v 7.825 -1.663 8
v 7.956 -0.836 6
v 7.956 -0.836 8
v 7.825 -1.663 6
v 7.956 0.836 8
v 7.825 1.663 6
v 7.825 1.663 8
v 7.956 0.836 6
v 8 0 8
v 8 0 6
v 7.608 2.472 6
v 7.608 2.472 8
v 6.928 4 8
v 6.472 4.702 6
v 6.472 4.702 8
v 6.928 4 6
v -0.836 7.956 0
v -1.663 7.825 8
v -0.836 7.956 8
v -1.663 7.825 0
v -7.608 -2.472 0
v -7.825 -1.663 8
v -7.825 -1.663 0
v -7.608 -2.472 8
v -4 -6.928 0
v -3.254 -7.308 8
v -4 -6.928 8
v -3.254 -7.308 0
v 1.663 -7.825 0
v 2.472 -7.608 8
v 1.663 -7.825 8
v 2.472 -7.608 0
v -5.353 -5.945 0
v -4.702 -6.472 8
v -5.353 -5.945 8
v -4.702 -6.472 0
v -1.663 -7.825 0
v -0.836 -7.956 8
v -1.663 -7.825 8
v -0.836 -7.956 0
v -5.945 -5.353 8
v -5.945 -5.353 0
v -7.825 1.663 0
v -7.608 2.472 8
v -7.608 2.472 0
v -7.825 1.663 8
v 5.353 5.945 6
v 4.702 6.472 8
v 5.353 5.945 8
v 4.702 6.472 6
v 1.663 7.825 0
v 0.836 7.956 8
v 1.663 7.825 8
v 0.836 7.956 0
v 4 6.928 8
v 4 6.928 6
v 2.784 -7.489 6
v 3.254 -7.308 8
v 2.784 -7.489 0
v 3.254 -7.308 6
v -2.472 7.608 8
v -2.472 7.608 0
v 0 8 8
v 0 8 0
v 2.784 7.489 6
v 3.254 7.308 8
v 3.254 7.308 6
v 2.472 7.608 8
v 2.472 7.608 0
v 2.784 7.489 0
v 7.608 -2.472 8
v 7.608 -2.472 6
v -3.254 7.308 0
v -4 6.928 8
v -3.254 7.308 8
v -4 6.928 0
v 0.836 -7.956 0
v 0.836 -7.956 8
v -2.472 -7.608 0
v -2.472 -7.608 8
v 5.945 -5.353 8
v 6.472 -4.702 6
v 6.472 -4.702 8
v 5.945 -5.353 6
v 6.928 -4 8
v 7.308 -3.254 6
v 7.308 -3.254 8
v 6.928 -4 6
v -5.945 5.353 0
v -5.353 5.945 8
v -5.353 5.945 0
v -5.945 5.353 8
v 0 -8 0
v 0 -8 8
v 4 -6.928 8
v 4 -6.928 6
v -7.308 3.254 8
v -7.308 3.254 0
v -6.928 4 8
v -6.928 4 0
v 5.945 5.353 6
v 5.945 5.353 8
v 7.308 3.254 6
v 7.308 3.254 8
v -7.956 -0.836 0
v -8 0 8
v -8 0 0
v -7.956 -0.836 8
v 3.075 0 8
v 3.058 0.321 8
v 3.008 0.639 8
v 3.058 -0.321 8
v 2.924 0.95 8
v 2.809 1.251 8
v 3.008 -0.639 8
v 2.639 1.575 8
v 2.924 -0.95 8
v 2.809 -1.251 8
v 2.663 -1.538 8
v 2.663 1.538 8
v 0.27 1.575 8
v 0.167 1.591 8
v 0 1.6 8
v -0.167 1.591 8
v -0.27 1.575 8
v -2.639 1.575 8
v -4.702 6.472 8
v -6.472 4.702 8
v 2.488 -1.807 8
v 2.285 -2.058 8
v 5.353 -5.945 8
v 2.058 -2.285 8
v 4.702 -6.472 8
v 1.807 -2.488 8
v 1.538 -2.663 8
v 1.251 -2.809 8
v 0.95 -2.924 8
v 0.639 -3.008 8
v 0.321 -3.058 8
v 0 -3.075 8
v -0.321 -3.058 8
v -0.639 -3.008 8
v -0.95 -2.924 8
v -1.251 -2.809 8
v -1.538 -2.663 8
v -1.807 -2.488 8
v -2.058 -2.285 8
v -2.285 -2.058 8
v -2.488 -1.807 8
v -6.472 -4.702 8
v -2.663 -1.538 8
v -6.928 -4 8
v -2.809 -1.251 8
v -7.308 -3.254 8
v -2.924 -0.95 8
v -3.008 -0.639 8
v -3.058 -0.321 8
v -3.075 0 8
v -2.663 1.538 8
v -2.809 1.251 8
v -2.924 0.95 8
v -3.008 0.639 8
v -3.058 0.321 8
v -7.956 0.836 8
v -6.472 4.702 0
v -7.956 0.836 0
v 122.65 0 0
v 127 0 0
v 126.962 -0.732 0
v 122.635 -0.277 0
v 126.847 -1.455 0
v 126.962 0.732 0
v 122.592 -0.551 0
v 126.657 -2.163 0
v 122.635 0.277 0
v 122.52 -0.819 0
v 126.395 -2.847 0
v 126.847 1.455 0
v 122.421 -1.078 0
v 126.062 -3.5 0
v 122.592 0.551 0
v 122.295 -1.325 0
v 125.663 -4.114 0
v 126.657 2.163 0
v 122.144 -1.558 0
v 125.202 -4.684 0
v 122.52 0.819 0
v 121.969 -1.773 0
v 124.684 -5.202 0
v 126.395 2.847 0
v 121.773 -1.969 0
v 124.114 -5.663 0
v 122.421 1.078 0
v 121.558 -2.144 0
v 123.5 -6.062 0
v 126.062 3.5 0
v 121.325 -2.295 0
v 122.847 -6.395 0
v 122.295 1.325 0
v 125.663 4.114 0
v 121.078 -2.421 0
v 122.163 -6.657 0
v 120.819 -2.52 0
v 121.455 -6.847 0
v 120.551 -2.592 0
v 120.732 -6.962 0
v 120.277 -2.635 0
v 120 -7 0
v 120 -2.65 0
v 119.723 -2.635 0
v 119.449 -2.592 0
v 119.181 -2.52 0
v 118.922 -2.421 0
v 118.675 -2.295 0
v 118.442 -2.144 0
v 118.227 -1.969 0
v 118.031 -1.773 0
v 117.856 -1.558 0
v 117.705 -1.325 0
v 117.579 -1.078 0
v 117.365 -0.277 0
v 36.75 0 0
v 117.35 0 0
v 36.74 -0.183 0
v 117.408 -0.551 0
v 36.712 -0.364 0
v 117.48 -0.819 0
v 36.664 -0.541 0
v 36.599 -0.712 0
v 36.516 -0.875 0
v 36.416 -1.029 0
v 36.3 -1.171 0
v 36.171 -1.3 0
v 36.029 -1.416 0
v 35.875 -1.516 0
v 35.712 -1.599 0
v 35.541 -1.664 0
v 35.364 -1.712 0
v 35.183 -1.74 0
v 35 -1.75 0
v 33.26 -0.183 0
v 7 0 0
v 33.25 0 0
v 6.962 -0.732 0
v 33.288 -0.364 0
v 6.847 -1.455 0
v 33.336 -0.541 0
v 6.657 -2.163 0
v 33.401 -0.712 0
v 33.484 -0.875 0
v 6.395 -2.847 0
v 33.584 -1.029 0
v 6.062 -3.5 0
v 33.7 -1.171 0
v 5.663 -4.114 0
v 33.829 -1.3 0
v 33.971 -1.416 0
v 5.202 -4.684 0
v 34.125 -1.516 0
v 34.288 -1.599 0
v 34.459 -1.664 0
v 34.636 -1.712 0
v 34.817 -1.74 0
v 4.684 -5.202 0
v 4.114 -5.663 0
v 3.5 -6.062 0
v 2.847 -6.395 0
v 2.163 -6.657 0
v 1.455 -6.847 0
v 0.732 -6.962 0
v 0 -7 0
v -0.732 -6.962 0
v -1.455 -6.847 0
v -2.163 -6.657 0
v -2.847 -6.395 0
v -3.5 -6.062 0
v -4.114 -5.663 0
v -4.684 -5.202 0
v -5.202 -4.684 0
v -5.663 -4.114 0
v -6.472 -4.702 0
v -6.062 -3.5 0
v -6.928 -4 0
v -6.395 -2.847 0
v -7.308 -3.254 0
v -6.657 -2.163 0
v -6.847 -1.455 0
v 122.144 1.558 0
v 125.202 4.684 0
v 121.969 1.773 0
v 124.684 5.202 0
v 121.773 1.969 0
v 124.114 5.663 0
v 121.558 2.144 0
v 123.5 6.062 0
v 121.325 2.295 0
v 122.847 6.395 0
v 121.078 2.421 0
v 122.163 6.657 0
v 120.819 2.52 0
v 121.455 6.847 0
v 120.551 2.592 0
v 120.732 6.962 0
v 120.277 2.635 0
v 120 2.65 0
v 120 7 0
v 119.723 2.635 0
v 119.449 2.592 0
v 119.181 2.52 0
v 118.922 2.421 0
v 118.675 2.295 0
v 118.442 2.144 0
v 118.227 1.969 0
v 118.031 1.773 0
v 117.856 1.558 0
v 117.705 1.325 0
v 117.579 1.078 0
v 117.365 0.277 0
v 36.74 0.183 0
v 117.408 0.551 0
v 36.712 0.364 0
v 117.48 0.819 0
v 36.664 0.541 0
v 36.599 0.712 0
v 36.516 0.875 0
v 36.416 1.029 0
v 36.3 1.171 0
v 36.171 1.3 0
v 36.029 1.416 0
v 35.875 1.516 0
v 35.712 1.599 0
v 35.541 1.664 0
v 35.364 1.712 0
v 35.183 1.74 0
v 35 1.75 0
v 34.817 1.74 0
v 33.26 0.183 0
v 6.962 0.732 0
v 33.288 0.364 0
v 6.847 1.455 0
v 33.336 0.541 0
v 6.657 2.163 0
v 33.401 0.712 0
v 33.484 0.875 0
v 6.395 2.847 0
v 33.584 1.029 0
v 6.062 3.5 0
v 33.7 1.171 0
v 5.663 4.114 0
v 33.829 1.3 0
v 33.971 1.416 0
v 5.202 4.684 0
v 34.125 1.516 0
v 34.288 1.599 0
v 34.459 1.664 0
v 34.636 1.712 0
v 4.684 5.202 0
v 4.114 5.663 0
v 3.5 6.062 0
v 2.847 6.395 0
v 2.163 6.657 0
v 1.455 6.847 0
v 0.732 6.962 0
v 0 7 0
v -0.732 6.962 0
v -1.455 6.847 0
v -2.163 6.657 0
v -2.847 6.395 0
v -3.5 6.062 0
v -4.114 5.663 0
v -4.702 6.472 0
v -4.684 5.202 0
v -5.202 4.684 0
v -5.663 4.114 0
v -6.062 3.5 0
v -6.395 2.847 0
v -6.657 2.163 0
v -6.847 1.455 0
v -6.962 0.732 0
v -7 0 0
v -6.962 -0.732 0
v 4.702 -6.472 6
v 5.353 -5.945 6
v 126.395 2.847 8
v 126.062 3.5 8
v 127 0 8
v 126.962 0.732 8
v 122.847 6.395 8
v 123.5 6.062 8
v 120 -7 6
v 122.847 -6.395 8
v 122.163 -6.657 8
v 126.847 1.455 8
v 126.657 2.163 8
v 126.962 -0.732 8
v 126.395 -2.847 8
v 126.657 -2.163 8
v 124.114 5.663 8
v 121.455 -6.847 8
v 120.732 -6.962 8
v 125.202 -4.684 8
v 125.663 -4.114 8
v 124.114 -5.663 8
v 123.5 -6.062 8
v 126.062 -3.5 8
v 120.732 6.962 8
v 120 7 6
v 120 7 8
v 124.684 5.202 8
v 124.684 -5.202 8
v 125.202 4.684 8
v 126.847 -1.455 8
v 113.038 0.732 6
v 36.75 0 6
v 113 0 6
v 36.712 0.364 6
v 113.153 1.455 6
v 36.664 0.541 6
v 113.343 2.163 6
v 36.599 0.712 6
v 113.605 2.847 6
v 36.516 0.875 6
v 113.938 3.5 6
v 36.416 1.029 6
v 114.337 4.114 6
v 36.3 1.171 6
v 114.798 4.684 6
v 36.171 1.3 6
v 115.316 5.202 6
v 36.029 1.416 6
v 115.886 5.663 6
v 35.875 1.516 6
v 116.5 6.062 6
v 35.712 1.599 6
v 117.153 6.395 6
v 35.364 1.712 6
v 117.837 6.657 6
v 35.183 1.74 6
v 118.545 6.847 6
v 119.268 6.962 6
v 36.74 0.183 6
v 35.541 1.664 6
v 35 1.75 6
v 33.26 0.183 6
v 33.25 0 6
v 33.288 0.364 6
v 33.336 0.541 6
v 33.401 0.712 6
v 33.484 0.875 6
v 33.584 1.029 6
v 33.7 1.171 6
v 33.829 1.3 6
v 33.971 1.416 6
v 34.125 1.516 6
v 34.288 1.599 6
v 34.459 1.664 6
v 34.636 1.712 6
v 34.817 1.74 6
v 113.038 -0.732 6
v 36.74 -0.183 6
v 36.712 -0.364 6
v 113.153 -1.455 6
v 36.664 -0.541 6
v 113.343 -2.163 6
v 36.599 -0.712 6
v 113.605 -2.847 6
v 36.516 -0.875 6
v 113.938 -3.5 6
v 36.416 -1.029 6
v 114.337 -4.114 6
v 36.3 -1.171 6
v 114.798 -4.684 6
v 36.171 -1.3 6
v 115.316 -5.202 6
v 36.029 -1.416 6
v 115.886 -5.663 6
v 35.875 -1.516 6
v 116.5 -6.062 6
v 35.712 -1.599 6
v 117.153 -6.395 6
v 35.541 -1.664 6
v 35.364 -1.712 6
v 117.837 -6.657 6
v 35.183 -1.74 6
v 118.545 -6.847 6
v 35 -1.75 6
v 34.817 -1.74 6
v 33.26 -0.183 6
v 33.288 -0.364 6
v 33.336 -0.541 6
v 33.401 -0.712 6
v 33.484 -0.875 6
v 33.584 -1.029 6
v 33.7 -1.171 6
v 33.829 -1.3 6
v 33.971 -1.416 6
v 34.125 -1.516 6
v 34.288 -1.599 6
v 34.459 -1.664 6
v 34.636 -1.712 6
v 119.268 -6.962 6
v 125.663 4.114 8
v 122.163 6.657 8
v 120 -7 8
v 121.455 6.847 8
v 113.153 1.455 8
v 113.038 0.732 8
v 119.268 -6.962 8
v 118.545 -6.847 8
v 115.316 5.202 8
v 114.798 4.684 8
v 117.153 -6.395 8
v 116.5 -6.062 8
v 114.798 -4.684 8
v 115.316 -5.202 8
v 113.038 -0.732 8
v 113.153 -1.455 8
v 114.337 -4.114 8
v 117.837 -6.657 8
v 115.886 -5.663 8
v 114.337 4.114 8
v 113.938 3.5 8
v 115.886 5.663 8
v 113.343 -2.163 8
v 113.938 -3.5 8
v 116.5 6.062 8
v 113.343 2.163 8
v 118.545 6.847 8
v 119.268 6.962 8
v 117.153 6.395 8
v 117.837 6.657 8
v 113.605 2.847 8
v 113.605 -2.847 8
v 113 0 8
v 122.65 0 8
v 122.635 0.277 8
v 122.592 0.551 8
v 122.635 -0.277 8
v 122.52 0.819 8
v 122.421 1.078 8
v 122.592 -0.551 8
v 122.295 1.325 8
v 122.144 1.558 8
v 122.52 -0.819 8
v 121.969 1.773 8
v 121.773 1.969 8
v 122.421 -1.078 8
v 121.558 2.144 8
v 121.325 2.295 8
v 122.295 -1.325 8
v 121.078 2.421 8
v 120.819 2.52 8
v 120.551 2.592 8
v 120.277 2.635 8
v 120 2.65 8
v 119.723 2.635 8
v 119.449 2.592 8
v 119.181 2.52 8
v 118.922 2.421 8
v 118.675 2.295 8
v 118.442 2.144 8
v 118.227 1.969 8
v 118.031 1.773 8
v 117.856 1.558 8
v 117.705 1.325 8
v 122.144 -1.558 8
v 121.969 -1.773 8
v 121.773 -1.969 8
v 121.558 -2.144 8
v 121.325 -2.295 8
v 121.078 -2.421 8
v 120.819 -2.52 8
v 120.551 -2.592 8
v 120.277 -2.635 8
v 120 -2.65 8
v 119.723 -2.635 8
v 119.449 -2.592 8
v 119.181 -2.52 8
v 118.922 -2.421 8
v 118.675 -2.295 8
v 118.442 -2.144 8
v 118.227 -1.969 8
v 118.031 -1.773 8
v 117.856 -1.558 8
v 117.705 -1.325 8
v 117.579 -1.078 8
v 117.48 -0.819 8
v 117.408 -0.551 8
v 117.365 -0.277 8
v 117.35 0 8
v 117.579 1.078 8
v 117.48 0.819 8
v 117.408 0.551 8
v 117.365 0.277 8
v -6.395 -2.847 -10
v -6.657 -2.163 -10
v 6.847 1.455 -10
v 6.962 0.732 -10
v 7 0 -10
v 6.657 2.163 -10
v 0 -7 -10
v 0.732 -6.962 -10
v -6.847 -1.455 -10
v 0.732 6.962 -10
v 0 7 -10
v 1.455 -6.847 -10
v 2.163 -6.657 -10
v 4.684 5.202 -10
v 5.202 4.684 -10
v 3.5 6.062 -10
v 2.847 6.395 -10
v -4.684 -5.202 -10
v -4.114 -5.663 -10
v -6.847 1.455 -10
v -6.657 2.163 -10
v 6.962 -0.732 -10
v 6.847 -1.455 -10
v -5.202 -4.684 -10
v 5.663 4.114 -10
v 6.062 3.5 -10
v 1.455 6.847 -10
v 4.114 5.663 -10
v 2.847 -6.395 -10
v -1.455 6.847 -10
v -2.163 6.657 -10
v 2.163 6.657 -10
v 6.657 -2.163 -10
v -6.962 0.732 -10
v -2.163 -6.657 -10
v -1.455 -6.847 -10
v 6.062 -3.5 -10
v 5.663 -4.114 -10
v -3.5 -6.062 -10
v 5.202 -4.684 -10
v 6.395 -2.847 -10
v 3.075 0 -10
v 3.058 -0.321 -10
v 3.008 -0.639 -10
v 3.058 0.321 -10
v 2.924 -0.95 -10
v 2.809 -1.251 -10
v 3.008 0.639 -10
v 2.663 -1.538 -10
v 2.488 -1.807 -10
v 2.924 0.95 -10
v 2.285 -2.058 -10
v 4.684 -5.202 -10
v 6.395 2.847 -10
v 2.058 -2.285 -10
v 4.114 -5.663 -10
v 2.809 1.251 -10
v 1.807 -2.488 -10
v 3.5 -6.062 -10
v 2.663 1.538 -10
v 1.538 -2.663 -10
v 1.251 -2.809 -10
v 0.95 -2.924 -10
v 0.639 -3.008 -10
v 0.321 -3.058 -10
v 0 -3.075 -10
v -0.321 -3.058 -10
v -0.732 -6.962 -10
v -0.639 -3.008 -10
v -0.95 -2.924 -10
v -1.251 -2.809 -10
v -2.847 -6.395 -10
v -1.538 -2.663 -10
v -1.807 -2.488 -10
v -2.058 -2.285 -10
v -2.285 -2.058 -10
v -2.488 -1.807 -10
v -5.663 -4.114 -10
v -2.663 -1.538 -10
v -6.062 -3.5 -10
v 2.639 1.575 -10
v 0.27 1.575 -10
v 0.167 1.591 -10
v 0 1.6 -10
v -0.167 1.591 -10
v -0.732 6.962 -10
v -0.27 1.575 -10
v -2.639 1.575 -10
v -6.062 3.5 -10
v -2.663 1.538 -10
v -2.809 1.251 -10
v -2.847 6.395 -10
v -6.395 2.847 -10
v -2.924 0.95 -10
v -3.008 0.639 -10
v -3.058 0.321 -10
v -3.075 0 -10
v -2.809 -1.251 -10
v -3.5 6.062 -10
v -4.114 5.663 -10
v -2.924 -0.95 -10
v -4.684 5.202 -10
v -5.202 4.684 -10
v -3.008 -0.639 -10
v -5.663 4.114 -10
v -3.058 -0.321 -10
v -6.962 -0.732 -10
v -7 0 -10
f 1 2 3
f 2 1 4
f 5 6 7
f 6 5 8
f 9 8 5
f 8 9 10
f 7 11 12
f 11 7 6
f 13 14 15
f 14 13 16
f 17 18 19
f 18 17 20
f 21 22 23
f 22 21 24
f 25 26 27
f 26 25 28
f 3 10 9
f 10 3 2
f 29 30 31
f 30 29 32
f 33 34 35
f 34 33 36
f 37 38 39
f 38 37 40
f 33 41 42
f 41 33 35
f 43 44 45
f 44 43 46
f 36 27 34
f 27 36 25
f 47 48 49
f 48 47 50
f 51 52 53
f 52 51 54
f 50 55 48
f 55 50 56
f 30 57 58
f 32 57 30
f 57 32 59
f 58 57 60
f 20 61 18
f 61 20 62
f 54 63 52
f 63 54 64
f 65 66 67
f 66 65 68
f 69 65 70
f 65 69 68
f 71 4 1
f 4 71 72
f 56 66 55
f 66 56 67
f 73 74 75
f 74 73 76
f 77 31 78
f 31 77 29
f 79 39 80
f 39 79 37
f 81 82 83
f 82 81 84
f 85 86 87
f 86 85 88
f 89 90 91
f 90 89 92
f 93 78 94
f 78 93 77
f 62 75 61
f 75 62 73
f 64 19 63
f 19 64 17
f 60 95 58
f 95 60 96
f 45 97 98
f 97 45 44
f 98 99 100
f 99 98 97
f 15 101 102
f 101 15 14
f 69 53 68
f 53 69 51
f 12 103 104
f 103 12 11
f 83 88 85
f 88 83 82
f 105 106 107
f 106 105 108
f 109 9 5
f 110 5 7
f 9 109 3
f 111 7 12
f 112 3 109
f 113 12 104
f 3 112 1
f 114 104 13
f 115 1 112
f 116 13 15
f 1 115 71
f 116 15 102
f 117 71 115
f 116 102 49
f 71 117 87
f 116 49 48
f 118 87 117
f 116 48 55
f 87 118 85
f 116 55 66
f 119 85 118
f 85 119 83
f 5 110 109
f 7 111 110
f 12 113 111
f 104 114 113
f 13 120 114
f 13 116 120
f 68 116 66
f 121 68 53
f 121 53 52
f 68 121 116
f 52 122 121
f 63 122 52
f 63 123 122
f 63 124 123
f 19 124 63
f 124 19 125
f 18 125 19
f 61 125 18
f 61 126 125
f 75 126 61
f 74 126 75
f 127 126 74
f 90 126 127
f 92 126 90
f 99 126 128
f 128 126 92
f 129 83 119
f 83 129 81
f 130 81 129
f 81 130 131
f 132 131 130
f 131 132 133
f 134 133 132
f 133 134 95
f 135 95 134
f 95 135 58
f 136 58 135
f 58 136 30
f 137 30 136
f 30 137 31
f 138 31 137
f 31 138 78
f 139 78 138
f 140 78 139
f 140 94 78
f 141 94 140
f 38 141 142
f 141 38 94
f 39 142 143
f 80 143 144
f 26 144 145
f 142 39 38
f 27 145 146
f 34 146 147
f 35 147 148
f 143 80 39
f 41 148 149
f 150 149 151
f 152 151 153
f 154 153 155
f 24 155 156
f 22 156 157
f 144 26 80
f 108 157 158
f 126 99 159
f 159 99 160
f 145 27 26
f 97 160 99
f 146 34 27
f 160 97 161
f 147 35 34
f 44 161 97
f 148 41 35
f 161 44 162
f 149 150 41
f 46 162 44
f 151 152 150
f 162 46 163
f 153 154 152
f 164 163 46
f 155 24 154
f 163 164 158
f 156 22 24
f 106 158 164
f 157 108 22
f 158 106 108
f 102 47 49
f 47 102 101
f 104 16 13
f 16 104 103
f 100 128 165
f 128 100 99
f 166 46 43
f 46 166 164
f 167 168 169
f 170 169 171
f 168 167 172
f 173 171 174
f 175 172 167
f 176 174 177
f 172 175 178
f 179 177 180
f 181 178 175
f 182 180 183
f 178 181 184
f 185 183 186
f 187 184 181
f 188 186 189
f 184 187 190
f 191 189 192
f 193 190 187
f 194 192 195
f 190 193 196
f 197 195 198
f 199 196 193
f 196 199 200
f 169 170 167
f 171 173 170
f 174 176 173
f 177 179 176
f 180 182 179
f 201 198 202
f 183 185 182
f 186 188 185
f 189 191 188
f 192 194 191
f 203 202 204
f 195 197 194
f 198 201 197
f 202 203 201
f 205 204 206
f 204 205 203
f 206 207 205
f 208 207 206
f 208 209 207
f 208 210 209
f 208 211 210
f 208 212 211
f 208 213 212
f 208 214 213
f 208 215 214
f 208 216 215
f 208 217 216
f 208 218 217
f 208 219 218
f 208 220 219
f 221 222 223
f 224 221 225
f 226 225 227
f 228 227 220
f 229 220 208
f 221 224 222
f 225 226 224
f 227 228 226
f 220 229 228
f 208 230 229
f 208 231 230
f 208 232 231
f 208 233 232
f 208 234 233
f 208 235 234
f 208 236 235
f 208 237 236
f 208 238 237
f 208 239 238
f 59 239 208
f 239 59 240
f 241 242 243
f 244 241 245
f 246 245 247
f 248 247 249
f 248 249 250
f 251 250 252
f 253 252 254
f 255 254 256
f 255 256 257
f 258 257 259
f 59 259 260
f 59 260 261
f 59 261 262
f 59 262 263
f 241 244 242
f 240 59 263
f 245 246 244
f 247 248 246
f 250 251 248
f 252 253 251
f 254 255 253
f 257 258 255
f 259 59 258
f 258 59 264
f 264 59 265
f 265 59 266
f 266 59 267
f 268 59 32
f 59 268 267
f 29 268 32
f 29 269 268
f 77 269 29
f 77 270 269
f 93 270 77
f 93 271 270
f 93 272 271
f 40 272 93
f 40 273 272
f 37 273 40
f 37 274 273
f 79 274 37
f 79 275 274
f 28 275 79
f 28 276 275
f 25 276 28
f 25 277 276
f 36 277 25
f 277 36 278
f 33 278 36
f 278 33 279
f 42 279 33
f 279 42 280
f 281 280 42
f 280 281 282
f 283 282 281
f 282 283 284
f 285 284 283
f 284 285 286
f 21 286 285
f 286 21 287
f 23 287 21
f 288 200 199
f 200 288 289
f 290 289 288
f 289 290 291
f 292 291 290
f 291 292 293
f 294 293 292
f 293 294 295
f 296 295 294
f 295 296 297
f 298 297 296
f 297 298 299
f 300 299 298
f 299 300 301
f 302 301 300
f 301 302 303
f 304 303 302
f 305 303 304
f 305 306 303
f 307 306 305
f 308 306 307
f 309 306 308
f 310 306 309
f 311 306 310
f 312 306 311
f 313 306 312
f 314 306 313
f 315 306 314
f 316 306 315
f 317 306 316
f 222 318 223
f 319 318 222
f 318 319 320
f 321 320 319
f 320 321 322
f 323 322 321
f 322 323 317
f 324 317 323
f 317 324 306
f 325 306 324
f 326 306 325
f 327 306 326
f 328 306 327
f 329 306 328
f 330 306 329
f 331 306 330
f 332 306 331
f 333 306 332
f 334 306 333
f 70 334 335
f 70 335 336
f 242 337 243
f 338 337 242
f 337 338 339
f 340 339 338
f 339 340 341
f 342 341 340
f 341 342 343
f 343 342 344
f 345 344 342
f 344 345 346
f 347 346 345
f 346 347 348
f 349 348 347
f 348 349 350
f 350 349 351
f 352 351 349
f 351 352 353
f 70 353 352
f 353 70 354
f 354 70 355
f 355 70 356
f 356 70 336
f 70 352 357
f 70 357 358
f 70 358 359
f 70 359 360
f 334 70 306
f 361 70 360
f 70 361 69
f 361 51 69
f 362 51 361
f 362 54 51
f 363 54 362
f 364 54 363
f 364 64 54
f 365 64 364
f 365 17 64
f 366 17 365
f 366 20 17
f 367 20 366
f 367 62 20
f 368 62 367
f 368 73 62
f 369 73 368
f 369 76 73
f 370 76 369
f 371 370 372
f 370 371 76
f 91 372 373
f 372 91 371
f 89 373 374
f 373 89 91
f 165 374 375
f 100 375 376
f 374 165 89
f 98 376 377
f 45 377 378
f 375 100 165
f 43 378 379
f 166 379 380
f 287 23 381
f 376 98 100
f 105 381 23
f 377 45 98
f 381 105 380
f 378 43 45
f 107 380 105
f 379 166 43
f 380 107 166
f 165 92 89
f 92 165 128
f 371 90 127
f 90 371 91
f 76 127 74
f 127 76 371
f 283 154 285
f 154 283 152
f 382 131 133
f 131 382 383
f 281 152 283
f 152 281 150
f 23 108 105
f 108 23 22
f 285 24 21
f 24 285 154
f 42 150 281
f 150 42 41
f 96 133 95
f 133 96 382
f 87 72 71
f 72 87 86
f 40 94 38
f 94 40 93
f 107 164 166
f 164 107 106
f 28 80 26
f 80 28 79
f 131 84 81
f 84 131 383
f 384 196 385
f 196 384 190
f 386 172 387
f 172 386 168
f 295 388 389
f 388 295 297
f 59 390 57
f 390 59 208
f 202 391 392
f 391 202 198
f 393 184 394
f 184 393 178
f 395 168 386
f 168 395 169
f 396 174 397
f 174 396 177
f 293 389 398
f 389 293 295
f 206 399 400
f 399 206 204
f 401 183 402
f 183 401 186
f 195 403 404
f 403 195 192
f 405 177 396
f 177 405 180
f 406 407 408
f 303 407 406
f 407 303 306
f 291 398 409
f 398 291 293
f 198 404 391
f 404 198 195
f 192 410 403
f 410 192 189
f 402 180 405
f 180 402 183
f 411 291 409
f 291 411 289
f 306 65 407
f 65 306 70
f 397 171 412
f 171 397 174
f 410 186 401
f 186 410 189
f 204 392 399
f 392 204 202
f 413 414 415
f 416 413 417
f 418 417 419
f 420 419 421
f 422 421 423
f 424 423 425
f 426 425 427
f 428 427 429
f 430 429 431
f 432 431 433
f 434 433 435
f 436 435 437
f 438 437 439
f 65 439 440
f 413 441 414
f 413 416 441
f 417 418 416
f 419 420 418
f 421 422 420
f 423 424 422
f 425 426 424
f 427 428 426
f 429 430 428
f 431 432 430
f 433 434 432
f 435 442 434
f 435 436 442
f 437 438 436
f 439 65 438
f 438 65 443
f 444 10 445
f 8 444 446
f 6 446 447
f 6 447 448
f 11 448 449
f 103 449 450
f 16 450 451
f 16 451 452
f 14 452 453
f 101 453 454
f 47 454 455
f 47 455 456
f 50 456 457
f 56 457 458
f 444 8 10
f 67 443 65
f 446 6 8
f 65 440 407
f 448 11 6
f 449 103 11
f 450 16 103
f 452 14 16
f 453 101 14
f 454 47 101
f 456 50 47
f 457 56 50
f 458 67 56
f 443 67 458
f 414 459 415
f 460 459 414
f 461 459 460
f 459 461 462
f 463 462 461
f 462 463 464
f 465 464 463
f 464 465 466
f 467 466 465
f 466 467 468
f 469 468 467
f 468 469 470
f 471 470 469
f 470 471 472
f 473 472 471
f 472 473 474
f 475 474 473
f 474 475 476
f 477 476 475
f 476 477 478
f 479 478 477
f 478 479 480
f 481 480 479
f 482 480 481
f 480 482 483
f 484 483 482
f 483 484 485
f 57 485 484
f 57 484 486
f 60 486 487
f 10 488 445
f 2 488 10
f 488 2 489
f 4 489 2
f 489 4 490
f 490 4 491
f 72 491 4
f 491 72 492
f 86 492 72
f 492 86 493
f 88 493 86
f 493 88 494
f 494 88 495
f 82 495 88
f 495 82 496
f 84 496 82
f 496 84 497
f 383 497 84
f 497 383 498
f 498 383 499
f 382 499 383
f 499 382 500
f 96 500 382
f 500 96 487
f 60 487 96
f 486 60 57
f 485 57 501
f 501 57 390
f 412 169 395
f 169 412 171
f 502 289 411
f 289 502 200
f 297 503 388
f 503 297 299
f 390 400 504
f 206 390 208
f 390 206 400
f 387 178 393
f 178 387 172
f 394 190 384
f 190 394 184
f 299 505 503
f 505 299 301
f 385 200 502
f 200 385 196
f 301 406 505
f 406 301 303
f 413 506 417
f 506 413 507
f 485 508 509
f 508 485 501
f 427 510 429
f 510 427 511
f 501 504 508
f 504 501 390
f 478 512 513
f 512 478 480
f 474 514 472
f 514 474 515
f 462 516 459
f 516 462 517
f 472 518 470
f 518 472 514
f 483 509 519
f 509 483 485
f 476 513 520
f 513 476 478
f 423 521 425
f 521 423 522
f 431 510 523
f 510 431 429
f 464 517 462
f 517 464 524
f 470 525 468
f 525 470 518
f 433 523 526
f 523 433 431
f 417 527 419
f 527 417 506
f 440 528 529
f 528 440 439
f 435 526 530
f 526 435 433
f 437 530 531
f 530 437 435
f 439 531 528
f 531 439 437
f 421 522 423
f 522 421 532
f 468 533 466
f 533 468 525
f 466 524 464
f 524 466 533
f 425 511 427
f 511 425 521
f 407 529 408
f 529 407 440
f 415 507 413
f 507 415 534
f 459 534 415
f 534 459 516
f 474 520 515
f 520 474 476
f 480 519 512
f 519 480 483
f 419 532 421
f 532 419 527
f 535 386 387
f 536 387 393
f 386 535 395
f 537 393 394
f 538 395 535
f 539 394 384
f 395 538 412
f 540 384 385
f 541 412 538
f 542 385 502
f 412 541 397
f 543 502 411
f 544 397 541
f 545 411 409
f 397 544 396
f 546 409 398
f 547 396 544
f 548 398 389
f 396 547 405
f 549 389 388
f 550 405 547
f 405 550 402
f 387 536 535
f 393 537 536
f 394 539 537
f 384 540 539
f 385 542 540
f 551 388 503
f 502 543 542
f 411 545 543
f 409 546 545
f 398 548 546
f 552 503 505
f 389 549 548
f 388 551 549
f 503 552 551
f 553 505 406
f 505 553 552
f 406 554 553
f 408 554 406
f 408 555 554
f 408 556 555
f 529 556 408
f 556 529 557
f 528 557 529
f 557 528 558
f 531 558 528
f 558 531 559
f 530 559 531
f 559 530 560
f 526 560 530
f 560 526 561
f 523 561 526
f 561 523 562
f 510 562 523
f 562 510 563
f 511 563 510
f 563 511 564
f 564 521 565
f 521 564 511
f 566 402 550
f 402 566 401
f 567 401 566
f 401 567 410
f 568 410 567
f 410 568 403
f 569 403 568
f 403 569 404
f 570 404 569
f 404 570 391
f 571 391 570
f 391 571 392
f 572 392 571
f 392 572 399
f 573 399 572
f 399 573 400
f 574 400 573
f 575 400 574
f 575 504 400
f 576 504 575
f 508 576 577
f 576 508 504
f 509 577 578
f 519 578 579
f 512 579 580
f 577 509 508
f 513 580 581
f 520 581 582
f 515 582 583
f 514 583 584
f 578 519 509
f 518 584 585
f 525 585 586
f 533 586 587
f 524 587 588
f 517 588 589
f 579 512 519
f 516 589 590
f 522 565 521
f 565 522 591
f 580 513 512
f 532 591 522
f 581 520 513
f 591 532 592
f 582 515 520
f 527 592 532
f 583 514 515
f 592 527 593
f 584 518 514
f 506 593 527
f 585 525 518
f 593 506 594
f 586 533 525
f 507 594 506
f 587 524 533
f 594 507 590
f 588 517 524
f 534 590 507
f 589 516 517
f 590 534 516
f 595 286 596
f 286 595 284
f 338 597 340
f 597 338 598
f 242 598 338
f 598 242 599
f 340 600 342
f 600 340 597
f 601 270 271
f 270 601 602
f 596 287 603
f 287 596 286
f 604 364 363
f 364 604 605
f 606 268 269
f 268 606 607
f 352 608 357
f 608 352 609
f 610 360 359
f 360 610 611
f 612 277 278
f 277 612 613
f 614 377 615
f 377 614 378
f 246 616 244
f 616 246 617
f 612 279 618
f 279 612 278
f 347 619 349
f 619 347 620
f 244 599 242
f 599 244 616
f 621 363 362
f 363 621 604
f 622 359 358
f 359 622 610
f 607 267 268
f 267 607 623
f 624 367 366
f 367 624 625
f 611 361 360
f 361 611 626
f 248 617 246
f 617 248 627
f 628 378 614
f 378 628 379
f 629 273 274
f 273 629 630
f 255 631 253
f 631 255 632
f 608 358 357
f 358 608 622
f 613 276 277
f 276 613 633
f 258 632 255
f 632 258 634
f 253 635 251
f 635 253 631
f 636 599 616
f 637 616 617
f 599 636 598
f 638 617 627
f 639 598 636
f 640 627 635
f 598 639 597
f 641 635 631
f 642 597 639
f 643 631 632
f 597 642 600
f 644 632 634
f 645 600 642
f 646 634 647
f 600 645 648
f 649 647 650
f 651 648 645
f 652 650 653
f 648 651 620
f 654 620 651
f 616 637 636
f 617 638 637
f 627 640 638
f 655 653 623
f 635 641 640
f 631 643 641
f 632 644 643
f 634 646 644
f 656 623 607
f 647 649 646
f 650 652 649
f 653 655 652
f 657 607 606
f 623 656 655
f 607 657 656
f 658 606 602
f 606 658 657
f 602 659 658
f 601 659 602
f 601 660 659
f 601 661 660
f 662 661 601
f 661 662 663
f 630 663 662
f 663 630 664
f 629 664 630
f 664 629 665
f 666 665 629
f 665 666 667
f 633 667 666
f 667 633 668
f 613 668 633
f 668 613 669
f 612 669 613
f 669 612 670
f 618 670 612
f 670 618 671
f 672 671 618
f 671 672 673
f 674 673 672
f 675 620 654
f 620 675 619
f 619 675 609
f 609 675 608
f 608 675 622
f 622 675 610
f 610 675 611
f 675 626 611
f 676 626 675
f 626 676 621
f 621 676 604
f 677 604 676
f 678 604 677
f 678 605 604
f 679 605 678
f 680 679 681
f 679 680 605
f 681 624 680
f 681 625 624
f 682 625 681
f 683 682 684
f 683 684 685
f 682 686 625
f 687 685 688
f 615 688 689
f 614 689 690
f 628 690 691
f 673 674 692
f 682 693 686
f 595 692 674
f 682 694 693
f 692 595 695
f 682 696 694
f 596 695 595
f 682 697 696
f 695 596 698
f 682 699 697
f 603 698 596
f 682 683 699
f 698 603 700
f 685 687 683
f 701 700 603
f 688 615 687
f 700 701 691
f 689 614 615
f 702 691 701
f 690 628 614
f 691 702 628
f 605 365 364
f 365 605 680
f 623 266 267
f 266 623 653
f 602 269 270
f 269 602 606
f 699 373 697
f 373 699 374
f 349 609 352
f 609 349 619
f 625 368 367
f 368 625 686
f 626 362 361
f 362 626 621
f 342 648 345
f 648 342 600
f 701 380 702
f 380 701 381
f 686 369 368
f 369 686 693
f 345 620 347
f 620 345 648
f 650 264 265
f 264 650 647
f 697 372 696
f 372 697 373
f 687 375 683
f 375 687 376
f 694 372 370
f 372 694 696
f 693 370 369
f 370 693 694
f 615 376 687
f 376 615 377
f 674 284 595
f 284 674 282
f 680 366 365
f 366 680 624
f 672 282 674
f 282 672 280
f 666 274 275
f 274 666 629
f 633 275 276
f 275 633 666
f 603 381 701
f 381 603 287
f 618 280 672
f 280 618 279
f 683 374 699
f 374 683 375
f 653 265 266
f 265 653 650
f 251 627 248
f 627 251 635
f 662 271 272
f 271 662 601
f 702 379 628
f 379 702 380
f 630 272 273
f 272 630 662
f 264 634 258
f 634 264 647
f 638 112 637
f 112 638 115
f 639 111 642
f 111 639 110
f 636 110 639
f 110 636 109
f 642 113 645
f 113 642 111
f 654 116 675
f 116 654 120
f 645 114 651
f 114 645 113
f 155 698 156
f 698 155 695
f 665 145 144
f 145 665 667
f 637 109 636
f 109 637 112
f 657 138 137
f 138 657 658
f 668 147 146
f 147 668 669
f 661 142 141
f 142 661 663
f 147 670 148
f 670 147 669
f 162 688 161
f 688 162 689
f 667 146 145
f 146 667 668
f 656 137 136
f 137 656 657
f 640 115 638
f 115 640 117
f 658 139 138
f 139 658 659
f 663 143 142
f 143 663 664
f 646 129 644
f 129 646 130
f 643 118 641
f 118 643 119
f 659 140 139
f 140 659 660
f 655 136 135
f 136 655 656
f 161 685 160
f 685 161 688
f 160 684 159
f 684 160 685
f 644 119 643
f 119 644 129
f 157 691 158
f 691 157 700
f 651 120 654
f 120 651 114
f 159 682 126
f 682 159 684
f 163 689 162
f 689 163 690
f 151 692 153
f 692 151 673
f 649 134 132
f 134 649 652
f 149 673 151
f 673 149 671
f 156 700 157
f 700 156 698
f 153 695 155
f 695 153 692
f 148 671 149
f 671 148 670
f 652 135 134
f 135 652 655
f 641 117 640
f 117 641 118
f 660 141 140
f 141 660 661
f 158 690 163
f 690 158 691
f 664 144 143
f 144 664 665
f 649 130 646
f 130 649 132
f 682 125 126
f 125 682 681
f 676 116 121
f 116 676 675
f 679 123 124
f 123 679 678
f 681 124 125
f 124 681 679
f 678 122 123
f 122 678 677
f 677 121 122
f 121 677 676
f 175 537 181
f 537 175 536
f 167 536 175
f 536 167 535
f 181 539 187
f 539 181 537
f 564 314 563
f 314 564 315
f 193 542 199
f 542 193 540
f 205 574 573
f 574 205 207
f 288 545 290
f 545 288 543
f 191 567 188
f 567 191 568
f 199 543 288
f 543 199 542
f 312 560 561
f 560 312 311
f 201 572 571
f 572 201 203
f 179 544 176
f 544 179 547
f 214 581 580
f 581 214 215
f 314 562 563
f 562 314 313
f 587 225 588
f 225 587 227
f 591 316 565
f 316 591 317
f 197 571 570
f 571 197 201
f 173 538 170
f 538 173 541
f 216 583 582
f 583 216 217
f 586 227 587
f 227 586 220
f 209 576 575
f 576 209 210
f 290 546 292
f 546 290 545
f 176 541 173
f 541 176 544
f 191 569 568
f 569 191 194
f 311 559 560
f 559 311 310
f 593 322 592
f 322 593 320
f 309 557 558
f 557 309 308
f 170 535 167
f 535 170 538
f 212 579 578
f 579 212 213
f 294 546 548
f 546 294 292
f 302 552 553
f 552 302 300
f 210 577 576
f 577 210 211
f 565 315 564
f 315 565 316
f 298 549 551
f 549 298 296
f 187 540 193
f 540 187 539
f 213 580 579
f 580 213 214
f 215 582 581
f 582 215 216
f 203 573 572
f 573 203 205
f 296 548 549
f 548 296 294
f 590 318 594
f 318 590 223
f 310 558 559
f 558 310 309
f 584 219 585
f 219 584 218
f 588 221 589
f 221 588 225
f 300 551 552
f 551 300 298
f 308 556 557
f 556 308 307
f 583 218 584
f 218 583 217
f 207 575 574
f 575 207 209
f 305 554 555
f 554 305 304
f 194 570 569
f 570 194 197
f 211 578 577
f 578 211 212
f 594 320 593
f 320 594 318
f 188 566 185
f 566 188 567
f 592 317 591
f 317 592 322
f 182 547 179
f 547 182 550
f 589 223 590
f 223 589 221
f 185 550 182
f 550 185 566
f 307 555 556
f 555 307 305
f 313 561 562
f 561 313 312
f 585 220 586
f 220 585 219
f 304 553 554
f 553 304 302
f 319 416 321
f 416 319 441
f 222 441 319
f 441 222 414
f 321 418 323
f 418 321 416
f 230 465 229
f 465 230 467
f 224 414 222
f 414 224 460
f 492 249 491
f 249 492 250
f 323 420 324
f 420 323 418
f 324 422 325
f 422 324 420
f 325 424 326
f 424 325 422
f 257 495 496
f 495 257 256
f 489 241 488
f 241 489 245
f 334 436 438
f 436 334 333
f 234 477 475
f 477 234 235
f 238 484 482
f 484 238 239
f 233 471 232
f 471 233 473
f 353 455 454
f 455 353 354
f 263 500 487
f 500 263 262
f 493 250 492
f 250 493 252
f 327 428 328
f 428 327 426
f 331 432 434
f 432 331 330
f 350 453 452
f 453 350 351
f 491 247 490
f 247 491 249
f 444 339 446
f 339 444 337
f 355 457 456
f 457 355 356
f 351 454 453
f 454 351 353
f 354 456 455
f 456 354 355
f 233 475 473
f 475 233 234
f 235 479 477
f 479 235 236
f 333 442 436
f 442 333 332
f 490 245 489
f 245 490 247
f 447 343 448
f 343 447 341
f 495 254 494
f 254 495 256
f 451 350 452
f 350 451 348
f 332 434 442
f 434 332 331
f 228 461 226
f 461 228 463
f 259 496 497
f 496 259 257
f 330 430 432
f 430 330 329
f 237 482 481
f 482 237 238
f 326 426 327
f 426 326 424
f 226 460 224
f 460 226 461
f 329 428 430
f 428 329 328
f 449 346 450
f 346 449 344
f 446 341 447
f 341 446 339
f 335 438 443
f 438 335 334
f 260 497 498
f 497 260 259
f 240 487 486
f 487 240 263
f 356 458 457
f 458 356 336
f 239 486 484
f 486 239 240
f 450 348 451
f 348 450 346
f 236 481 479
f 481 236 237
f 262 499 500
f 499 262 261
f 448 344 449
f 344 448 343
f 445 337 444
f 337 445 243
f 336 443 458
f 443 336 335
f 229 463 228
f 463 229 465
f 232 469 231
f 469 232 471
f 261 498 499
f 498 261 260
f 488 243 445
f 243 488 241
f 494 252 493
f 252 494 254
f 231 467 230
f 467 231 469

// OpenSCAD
// file: common.scad
// common.scad — Shared dimensions for FilamentFixer 3D printed parts
// All units in mm.

// --- MG996R Servo Dimensions ---
servo_body_w = 20.0;     // width (side to side)
servo_body_l = 40.7;     // length (front to back)
servo_body_h = 36.5;     // height (bottom to mounting tab top)
servo_tab_w  = 54.5;     // total width across mounting tabs
servo_tab_h  = 2.5;      // tab thickness
servo_tab_y  = 27.0;     // tab distance from bottom of servo
servo_shaft_offset = 10.0; // shaft center from front face
servo_shaft_dia = 6.0;   // output shaft diameter
servo_spline_dia = 5.8;  // 25T spline OD
servo_hole_dia = 4.5;    // mounting screw hole diameter (M4)
servo_hole_spacing_w = 49.0; // hole center to center (width)
servo_hole_spacing_l = 10.0; // hole center to center (length, front-back)
servo_total_h = 42.9;    // total height including shaft nub

// --- Print Tolerances ---
tol = 0.3;               // general clearance tolerance
tol_tight = 0.15;        // tight fit tolerance

// --- Fastener Sizes ---
m3_hole = 3.2;
m3_head = 5.8;
m3_insert = 4.2;         // heat-set insert hole
m4_hole = 4.3;
m4_head = 7.2;

// --- Filament ---
filament_dia = 1.75;     // standard filament diameter

// --- Potentiometer (typical 16mm panel-mount rotary pot) ---
pot_body_dia = 16.0;     // pot body diameter
pot_shaft_dia = 6.0;     // D-shaft diameter (round part)
pot_shaft_flat = 4.5;    // D-shaft flat-to-round distance
pot_shaft_len = 15.0;    // shaft length above body
pot_bushing_dia = 7.2;   // threaded bushing OD (panel mount hole)
pot_bushing_len = 9.0;   // bushing length
pot_body_h = 10.0;       // body height (below bushing)
pot_tab_w = 3.0;         // anti-rotation tab width
pot_tab_depth = 2.0;     // anti-rotation tab slot depth

// --- D-shaft profile (matches pot shaft) ---
dshaft_dia = 6.0;        // round diameter
dshaft_flat = 4.5;       // flat-to-round distance (D cut depth)
dshaft_len = 10.0;       // length extending below arm hub

// --- Reed switch (glass body, typical) ---
reed_body_l = 14.0;      // glass body length
reed_body_dia = 2.5;     // glass body diameter
reed_lead_dia = 0.5;     // lead wire diameter
reed_mount_id = 3.0;     // clip inner diameter (holds reed body)

$fn = 60;
// main file
// feed_arm.scad — Main feed arm that attaches to Servo0
// 120mm from servo shaft to guide wheel center.
// Spring anchor point partway along the arm.
// D-shaft coupling at the base for potentiometer feedback.

include <common.scad>

// --- Arm Parameters ---
arm_length = 120;           // shaft center to wheel center
arm_width = 15;             // arm cross-section width
arm_thickness = 6;          // arm cross-section height
hub_dia = 16;               // hub outer diameter
hub_height = 8;             // hub thickness above arm

// Spring anchor — hole for spring hook, partway along the arm
spring_anchor_dist = 35;    // distance from shaft center
spring_hole_dia = 3.5;      // spring wire hook hole

// Guide wheel axle at the tip
wheel_axle_dia = 5.0;       // axle hole diameter (for M5 bolt or 5mm shaft)
wheel_mount_dia = 14;       // boss around axle

// Servo screw hole through hub (M3 to secure to servo horn)
horn_screw_dia = m3_hole;

// D-shaft bore (couples to potentiometer shaft below base)
dshaft_bore_dia = dshaft_dia + tol_tight;
dshaft_bore_flat = dshaft_flat + tol_tight;

// --- D-shaft profile module ---
module d_shaft_bore(dia, flat, depth) {
    // D-shaped bore: cylinder with one flat side
    intersection() {
        cylinder(d=dia, h=depth);
        translate([-(dia/2), -(dia/2), 0])
            cube([dia, flat, depth]);
    }
    // Add the round part above the flat
    difference() {
        cylinder(d=dia, h=depth);
        translate([-(dia/2), flat - dia/2, -0.1])
            cube([dia, dia, depth + 0.2]);
    }
}

module feed_arm() {
    difference() {
        union() {
            // Hub (attaches to servo spline + pot D-shaft)
            cylinder(d=hub_dia, h=hub_height);

            // Arm body — tapered from hub to wheel mount
            hull() {
                // At hub
                translate([0, -arm_width/2, 0])
                    cube([0.1, arm_width, arm_thickness]);
                // At wheel mount
                translate([arm_length, 0, 0])
                    cylinder(d=wheel_mount_dia, h=arm_thickness);
            }

            // Wheel mount boss (thicker)
            translate([arm_length, 0, 0])
                cylinder(d=wheel_mount_dia, h=arm_thickness + 2);

            // Spring anchor boss
            translate([spring_anchor_dist, 0, 0])
                cylinder(d=10, h=arm_thickness);

            // D-shaft extension below hub (extends through base to pot)
            translate([0, 0, -dshaft_len])
                cylinder(d=hub_dia - 2, h=dshaft_len);
        }

        // D-shaft bore (through entire hub + extension)
        translate([0, 0, -dshaft_len - 0.1])
            d_shaft_bore(dshaft_bore_dia, dshaft_bore_flat,
                         hub_height + dshaft_len + 0.2);

        // Horn screw hole (through center, for M3 screw into servo)
        translate([0, 0, -dshaft_len - 0.1])
            cylinder(d=horn_screw_dia, h=hub_height + dshaft_len + 1);

        // Guide wheel axle hole
        translate([arm_length, 0, -0.1])
            cylinder(d=wheel_axle_dia + tol, h=arm_thickness + 3);

        // Spring anchor hole (vertical, for spring hook)
        translate([spring_anchor_dist, 0, -0.1])
            cylinder(d=spring_hole_dia, h=arm_thickness + 1);
    }
}

feed_arm();

echo("=== Feed Arm ===");
echo(str("Length: ", arm_length, " mm"));
echo(str("Hub OD: ", hub_dia, " mm"));
echo(str("D-shaft bore: ", dshaft_bore_dia, " mm"));
echo(str("Spring anchor at: ", spring_anchor_dist, " mm from shaft"));
